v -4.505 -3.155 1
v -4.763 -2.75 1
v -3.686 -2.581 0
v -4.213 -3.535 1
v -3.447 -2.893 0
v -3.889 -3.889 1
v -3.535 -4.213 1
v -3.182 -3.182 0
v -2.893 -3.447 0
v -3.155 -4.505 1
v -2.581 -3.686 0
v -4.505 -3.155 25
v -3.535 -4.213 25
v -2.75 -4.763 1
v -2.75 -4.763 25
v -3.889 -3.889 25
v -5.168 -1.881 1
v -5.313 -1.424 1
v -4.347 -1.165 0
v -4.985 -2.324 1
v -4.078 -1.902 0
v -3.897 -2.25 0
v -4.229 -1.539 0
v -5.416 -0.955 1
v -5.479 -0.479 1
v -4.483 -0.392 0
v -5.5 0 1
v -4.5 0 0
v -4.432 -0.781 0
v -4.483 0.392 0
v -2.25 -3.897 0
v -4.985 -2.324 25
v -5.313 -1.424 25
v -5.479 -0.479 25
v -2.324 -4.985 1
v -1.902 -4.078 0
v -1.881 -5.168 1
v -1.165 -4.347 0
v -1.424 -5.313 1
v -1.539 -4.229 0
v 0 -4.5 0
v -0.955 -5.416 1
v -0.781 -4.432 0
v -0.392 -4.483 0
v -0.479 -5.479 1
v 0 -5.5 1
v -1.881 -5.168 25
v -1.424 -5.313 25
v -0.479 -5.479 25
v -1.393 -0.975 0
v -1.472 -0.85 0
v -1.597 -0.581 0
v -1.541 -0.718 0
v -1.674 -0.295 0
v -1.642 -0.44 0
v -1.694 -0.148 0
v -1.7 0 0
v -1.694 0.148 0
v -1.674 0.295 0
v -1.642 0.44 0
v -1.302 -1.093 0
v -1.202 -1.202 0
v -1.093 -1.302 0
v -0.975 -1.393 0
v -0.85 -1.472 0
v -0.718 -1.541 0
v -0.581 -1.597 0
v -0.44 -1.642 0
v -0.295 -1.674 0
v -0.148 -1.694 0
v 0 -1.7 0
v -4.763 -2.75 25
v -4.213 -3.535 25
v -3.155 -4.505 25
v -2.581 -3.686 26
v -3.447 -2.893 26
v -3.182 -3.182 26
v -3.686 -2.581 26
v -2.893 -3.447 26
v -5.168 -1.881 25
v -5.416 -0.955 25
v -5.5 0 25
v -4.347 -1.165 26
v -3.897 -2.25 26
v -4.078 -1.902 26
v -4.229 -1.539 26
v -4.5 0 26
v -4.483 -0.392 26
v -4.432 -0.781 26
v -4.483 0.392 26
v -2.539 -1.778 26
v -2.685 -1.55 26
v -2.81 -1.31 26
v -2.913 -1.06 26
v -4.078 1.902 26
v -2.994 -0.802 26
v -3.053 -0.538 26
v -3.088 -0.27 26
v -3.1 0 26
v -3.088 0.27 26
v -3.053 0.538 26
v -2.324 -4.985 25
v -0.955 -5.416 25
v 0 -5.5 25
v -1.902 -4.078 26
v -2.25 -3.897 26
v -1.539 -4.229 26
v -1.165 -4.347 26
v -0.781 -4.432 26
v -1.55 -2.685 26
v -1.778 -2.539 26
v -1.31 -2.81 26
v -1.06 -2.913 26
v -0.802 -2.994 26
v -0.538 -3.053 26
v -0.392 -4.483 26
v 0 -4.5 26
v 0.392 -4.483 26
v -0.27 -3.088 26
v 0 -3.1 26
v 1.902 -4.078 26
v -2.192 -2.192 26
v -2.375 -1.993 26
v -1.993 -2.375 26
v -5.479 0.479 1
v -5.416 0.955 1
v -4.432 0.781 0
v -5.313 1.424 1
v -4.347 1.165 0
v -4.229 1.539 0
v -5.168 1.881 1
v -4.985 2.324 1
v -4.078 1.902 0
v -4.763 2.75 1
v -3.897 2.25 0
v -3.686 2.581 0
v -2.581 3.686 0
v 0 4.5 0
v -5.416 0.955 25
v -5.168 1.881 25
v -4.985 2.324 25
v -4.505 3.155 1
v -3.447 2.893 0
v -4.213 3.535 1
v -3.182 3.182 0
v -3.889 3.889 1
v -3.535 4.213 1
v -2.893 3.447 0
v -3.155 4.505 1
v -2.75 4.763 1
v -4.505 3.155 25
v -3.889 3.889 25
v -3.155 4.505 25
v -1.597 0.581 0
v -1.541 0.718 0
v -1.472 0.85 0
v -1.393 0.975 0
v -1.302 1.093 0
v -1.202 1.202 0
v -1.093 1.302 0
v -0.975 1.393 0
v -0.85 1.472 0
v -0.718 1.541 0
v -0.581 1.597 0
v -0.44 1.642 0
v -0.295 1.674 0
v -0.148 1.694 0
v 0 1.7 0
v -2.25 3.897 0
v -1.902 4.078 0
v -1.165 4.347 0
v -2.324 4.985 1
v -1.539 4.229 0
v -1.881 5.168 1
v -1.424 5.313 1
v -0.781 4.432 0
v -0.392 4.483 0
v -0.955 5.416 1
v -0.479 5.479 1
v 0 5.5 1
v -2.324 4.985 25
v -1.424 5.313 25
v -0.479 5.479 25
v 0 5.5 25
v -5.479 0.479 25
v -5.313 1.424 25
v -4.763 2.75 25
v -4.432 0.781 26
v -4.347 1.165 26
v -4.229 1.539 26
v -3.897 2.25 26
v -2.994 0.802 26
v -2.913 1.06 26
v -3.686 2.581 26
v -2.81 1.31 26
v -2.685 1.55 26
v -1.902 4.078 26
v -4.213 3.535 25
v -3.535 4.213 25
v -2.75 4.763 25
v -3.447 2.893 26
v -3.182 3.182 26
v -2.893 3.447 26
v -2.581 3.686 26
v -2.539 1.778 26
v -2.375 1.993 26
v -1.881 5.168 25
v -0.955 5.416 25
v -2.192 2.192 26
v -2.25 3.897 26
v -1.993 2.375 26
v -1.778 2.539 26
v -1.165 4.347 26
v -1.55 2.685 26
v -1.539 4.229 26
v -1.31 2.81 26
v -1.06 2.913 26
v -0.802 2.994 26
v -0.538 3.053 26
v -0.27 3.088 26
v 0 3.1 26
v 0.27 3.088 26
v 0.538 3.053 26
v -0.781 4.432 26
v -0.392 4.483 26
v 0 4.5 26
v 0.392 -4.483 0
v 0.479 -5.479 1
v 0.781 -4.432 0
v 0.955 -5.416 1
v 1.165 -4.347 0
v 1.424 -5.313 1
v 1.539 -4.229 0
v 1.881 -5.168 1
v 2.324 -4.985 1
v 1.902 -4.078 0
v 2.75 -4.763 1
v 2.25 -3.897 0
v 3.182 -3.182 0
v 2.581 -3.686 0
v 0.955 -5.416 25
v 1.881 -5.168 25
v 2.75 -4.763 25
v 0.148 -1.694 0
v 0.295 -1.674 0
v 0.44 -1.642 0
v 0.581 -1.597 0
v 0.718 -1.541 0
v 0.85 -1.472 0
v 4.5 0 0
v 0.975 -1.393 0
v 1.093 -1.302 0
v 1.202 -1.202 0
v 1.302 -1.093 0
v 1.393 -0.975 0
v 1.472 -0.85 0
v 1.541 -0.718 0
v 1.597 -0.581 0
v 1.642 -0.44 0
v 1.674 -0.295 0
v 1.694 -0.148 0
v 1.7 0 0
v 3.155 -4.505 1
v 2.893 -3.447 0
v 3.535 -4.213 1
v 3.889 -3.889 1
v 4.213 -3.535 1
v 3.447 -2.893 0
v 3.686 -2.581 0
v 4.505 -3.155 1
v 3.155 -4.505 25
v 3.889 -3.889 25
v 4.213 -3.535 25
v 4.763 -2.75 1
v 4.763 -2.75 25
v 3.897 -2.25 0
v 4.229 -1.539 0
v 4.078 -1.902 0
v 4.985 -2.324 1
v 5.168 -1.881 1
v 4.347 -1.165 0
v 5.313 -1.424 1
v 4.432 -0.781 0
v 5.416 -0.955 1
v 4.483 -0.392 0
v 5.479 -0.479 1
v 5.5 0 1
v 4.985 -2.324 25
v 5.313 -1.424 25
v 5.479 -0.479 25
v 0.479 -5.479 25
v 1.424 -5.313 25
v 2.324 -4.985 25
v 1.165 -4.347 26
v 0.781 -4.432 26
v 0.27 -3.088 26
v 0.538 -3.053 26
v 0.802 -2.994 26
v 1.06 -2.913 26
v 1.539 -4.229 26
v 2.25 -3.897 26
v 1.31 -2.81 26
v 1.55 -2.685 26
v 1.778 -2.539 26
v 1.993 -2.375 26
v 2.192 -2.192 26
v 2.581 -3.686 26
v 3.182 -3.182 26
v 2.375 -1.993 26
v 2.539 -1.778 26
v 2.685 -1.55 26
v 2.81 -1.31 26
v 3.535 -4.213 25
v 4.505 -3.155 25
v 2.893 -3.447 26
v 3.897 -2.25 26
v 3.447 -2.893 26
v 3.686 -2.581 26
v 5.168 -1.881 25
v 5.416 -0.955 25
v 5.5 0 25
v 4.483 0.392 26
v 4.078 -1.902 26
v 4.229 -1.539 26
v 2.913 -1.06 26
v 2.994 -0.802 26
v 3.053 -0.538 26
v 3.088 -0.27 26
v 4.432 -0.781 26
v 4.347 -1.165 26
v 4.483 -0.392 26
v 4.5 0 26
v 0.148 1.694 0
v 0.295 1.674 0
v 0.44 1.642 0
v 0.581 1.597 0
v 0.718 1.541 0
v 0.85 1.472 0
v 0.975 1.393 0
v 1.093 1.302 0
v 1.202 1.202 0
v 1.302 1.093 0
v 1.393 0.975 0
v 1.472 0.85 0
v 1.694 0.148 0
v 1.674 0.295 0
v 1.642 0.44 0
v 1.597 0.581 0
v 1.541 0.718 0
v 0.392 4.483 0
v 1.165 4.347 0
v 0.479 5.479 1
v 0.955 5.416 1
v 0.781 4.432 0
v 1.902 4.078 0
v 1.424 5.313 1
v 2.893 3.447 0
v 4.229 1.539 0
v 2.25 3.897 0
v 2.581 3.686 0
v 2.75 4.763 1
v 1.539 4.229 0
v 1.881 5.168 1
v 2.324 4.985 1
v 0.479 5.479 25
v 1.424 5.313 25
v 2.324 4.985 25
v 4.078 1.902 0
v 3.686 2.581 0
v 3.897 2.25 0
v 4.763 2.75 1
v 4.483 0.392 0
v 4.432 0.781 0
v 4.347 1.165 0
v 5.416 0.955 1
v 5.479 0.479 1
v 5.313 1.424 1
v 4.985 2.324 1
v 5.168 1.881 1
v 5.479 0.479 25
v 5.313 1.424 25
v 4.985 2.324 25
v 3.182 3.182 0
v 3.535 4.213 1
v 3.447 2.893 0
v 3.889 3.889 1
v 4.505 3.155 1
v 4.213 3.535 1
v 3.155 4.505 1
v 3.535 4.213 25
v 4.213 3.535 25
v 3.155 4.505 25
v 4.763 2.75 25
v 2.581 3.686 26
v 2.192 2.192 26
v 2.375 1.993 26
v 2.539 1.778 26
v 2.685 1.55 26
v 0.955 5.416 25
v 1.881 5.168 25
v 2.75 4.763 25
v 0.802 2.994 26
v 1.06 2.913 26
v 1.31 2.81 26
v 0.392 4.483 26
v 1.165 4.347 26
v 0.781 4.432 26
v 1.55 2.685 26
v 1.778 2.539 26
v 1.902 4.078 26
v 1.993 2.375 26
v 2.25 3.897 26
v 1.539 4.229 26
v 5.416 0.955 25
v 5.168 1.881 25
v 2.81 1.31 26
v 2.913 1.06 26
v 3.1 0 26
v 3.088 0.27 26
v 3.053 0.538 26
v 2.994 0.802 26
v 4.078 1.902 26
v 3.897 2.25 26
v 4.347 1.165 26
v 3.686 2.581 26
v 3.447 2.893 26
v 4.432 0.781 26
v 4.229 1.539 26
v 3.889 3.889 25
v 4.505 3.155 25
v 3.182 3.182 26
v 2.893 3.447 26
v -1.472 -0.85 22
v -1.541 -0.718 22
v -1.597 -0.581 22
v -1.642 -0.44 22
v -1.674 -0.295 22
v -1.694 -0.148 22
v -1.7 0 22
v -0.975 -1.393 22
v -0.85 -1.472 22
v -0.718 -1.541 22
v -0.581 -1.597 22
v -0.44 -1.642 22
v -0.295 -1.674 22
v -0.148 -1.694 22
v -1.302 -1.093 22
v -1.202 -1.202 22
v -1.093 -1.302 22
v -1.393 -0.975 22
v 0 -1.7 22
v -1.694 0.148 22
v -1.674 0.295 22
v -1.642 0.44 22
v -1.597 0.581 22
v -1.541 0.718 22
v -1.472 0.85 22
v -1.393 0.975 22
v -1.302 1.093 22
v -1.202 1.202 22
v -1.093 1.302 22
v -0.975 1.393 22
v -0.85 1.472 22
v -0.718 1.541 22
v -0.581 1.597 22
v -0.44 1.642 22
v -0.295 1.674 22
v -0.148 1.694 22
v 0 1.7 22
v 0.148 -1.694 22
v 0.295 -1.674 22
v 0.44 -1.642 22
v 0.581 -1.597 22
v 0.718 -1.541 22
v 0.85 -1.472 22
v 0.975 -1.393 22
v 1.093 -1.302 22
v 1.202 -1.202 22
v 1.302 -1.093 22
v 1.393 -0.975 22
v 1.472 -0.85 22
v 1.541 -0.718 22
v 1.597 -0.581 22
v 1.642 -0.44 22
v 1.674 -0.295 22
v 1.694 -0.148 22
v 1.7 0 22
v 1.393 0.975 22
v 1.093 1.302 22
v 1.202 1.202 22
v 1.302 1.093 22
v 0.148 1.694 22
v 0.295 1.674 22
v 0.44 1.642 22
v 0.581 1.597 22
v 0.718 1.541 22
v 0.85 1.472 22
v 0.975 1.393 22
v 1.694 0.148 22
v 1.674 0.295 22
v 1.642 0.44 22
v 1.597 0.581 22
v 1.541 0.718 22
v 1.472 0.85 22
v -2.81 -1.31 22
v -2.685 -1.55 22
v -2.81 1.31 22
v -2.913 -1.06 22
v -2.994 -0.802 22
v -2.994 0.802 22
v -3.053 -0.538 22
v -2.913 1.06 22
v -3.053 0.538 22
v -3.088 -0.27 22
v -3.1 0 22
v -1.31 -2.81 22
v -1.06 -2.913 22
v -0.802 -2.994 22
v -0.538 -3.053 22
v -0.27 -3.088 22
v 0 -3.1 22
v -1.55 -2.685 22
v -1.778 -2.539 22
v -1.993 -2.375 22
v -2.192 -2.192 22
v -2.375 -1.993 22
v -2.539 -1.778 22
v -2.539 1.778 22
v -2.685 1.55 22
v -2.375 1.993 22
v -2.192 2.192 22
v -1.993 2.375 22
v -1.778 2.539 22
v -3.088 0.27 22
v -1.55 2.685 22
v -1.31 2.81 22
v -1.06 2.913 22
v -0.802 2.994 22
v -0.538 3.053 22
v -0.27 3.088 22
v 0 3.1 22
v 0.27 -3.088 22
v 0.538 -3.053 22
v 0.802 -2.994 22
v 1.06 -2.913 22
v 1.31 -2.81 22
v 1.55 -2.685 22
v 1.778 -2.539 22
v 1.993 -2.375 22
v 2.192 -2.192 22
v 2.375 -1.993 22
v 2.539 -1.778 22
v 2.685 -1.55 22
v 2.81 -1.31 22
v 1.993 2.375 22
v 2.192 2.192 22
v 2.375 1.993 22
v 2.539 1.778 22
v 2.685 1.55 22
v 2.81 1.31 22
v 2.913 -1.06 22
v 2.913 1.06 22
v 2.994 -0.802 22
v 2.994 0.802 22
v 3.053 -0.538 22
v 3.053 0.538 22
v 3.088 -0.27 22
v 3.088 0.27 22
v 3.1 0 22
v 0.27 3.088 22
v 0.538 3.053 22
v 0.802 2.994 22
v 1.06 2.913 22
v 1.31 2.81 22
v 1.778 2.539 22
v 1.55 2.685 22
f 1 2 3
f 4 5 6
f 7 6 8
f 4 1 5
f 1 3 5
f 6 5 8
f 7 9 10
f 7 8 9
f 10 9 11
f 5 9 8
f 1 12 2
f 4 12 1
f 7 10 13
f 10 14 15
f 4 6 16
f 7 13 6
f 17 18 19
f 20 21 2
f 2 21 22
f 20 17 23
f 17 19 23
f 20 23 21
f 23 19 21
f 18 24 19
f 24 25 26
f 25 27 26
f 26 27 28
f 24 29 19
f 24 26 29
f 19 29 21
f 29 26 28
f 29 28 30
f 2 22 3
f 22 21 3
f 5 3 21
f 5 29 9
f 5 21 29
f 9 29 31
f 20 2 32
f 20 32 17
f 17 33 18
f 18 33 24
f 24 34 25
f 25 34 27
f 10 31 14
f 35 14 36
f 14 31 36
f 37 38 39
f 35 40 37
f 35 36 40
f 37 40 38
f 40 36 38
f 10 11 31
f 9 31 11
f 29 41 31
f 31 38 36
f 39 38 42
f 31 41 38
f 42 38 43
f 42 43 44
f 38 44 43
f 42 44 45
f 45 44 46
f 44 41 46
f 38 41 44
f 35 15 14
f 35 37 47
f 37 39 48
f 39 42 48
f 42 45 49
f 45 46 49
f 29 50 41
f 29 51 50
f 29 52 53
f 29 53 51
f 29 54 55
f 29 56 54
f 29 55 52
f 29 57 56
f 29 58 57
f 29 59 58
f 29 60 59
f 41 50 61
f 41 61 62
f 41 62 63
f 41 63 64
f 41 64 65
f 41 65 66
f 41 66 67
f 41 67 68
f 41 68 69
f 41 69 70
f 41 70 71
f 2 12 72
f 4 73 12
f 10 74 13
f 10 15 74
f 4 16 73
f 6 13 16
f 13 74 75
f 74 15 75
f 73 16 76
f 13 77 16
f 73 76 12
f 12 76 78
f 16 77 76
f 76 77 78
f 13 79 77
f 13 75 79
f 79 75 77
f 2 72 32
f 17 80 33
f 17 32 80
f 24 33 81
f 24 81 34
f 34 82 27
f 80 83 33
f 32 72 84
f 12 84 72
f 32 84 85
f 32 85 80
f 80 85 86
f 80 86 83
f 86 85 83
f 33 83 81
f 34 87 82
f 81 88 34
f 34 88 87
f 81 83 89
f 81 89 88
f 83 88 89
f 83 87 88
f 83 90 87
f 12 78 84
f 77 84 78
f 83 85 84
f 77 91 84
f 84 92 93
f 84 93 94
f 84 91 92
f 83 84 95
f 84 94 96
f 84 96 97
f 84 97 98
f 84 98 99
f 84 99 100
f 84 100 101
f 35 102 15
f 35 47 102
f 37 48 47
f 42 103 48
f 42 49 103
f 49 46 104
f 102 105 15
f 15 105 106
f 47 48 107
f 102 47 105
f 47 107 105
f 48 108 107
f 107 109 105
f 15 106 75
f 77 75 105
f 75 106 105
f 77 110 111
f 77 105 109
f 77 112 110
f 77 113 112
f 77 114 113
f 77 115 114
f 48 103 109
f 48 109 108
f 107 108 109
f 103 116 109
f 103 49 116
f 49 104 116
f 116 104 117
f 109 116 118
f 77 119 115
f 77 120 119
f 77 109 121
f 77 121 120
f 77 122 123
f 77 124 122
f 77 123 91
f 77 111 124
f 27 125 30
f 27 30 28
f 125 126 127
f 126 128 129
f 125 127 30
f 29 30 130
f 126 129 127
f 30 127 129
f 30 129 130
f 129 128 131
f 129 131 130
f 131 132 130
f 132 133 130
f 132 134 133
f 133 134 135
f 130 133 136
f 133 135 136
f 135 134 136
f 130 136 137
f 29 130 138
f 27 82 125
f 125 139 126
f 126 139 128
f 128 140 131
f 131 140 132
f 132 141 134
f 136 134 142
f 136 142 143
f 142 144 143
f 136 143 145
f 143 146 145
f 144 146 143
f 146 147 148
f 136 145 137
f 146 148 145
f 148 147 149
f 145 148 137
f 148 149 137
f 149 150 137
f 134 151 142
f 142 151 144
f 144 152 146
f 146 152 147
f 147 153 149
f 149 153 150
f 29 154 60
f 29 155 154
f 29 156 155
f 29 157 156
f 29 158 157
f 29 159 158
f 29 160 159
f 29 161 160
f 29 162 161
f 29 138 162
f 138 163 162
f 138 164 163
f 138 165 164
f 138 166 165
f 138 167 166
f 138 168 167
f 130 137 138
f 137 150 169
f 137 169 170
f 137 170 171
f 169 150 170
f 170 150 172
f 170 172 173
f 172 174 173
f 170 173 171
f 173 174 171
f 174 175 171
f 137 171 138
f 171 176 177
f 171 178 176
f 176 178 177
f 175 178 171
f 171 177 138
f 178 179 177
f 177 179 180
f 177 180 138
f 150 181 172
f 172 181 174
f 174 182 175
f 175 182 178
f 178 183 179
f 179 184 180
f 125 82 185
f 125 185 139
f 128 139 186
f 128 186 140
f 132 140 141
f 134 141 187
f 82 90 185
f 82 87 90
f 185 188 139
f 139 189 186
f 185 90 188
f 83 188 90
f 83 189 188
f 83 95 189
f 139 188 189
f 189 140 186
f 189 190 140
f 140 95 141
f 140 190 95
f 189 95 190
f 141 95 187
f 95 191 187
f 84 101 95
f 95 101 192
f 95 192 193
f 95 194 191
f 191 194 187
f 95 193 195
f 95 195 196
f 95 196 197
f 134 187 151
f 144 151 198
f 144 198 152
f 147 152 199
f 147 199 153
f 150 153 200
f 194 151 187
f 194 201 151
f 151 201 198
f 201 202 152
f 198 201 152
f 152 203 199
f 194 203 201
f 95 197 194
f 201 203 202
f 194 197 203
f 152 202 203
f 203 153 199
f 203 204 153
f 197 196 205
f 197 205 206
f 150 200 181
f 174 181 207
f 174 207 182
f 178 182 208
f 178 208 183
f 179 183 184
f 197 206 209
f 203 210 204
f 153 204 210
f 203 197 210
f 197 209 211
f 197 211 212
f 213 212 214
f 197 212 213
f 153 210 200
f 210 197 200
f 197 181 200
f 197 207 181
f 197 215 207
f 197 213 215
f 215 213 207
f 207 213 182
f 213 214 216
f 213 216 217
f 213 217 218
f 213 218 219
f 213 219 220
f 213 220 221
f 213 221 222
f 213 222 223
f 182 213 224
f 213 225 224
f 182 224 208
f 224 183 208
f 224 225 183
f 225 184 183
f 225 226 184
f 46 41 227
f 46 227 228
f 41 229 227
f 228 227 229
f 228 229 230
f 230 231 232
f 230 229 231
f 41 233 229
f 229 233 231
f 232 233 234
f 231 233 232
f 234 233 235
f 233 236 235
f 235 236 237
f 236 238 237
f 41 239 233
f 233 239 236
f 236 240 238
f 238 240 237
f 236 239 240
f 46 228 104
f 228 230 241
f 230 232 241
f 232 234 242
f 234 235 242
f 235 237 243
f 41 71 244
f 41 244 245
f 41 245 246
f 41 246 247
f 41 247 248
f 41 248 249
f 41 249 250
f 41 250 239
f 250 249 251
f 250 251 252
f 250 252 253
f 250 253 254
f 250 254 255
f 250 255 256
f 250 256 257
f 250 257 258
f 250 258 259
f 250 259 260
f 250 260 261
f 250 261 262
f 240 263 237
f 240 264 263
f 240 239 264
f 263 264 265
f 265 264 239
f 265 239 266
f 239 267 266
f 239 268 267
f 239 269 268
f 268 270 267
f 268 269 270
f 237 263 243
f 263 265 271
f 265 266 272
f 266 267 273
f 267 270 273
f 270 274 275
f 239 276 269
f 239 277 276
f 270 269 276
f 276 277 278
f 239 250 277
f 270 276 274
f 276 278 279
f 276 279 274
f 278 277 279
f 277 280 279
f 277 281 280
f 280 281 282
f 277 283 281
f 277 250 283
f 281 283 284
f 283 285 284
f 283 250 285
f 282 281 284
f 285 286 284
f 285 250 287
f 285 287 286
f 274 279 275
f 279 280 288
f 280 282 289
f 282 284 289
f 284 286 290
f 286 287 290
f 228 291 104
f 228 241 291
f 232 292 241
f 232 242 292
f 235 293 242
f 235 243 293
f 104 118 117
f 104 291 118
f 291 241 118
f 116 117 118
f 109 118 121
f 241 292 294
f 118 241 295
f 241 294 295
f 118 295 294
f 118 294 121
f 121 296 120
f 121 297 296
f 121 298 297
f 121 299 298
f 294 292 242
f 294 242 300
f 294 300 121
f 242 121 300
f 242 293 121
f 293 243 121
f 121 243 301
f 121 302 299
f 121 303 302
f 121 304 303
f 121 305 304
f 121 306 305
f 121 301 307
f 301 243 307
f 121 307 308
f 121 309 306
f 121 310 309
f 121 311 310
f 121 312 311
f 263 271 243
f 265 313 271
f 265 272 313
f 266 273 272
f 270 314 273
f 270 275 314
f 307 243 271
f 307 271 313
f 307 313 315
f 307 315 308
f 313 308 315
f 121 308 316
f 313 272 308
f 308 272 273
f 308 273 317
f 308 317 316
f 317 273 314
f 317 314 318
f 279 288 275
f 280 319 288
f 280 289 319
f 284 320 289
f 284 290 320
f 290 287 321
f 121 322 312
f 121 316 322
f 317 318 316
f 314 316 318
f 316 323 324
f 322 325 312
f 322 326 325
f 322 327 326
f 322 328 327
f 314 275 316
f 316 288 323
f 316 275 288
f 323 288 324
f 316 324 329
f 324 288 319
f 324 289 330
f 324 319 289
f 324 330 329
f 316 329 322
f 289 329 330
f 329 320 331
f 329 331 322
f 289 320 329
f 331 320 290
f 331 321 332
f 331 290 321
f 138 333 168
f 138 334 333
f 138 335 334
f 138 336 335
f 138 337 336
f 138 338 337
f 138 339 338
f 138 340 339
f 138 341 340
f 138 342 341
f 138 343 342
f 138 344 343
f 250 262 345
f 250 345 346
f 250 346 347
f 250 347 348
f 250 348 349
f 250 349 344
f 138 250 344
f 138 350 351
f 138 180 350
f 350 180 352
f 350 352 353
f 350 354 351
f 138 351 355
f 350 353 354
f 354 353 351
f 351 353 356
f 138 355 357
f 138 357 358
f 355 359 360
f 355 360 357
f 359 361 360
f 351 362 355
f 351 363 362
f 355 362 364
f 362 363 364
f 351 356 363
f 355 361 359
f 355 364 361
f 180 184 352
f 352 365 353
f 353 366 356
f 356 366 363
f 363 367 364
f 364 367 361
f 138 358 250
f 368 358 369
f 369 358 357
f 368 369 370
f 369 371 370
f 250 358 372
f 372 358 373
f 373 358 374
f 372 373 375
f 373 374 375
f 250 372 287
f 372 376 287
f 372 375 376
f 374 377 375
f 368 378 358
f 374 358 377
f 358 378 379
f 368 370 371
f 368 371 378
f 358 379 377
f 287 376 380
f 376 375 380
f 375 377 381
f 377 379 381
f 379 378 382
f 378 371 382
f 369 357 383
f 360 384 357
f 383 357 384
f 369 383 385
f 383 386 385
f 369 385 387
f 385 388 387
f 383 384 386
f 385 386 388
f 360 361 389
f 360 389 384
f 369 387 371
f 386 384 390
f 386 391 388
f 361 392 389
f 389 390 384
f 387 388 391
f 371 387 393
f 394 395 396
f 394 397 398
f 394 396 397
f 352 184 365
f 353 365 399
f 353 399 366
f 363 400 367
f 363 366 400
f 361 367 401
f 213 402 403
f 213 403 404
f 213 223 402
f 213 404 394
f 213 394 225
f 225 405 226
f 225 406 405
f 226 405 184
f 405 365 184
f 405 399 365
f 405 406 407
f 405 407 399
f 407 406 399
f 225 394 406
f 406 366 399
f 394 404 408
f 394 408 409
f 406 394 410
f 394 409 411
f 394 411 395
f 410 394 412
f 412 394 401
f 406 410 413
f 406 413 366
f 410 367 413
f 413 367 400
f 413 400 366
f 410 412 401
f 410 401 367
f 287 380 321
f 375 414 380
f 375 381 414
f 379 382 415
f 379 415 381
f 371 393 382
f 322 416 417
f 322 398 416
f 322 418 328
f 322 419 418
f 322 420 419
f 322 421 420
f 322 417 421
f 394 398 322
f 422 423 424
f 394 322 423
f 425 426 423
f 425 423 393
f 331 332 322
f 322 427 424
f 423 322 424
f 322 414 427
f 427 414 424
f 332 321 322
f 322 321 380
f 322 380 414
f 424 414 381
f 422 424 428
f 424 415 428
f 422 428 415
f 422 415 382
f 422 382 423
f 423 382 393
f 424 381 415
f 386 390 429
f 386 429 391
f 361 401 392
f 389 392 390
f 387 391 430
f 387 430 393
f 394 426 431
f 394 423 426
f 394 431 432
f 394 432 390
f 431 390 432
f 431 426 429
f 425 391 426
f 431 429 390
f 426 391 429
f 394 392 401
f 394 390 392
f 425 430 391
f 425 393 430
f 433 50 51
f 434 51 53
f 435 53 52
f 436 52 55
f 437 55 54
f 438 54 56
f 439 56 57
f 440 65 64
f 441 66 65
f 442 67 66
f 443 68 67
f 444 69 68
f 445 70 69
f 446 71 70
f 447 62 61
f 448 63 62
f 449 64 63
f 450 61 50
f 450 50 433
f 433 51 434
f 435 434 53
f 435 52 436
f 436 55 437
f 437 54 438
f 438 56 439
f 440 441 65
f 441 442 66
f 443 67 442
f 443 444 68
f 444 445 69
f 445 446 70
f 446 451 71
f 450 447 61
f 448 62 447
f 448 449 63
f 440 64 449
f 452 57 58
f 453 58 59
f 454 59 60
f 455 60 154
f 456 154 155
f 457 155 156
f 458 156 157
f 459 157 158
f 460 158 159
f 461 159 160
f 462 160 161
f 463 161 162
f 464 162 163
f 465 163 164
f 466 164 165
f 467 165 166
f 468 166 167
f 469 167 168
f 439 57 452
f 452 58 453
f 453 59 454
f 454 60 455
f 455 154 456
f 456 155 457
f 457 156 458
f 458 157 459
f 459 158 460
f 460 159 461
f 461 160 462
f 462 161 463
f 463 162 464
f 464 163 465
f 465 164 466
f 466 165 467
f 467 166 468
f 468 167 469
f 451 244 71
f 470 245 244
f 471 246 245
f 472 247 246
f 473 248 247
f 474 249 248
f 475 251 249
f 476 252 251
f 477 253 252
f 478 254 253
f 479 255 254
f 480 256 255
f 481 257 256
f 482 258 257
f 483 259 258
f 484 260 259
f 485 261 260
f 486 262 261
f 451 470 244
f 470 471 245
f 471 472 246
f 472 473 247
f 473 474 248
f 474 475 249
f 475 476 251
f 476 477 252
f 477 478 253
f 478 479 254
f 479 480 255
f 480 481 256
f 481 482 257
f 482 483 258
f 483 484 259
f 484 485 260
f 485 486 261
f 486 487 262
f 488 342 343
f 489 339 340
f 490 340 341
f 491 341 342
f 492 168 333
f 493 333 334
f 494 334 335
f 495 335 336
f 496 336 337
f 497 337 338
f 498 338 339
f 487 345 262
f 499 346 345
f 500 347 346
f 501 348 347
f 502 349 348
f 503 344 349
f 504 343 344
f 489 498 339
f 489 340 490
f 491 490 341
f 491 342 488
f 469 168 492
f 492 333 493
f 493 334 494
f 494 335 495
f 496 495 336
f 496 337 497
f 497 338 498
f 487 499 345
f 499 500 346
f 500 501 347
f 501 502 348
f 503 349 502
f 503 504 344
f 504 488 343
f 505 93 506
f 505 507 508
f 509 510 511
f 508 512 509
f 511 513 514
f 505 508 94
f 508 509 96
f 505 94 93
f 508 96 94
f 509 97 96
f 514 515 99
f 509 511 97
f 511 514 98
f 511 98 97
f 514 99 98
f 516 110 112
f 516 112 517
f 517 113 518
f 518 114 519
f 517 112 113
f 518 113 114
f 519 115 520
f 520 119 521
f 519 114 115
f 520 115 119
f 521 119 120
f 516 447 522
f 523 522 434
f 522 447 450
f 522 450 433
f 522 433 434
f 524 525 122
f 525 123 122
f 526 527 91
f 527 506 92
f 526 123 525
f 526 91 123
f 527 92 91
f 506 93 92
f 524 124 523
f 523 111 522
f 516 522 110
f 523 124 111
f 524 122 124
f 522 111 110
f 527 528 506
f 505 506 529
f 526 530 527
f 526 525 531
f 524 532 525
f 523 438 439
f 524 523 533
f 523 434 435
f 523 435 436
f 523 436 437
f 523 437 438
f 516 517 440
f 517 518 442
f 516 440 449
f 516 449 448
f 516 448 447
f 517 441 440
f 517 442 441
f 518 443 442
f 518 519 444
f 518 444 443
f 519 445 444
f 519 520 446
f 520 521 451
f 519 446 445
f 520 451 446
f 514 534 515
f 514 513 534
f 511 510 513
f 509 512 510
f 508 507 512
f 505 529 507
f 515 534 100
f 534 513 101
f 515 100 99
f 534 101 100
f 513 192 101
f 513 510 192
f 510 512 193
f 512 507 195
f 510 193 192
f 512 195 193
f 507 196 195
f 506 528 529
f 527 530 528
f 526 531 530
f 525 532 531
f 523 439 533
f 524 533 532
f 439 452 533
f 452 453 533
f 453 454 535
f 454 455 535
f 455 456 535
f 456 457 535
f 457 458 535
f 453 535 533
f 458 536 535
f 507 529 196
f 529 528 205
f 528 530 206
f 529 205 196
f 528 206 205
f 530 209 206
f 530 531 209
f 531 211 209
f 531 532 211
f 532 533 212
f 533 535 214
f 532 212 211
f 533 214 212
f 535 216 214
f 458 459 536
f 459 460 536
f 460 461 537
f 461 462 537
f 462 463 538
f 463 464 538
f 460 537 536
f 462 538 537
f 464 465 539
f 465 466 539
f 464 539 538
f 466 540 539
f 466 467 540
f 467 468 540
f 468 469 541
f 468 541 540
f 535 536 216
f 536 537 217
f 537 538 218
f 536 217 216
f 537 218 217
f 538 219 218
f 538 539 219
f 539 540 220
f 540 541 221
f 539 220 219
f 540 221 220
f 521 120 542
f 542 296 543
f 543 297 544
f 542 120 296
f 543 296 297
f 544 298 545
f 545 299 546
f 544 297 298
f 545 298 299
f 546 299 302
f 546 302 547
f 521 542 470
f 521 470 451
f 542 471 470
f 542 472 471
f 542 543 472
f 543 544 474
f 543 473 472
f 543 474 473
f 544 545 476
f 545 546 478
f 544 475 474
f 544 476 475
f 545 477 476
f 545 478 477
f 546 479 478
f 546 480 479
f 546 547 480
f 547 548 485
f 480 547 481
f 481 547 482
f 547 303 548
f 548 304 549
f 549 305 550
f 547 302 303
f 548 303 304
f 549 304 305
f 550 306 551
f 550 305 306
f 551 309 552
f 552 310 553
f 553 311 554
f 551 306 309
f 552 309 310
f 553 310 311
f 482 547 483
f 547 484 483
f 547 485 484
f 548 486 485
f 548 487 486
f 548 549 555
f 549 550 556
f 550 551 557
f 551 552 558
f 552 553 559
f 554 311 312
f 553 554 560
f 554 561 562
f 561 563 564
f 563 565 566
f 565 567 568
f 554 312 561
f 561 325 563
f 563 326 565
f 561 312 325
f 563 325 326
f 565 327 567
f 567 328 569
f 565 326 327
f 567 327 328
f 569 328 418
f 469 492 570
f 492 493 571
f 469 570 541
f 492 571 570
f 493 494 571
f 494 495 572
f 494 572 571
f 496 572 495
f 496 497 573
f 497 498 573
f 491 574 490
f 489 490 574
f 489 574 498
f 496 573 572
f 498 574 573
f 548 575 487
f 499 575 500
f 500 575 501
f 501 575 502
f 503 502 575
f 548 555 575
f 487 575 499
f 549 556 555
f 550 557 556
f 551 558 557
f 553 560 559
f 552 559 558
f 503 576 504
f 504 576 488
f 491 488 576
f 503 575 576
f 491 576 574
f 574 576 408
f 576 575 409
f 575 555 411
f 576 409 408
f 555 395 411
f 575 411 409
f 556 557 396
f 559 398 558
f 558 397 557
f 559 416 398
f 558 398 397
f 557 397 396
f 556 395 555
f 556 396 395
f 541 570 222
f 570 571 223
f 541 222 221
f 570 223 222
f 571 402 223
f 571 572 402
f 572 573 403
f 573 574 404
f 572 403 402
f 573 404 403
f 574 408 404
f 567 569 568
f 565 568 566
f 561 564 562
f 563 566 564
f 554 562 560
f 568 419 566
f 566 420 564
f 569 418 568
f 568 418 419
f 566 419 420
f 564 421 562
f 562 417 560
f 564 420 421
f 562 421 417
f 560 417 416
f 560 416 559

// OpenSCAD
// ============================================================================
// CyberWing — Nano->Orin spacer column  (print 4, PLA)
// Fastens to the Nano deck's M3 insert with an M3 x 30 screw dropped through
// from the top (head recessed in the counterbore). 26 mm tall -> with the Nano
// deck's 8 mm insert boss it gives a ~34 mm gap, clearing the 29 mm Nano+heatsink.
// The Orin deck sits on the column tops.
// ============================================================================
$fn = 72;

H      = 26;     // column height
OD     = 11;     // outer diameter (sits on the Nano deck's 10 mm boss)
HOLE   = 3.4;    // M3 screw clearance through-hole
CB_D   = 6.2;    // counterbore for the M3 x 30 head (5.35 mm + clearance)
CB_H   = 4.0;    // counterbore depth (recesses the head flush)
CHAM   = 1.0;    // top/bottom edge chamfer

module column() {
  difference() {
    // body with chamfered top + bottom edges
    hull() {
      translate([0,0,CHAM])      cylinder(d=OD, h=H-2*CHAM);
      cylinder(d1=OD-2*CHAM, d2=OD, h=CHAM);
      translate([0,0,H-CHAM])    cylinder(d1=OD, d2=OD-2*CHAM, h=CHAM);
    }
    translate([0,0,-0.1]) cylinder(d=HOLE, h=H+0.2);          // screw through-hole
    translate([0,0,H-CB_H]) cylinder(d=CB_D, h=CB_H+0.1);     // top counterbore (M3x30 head)
  }
}

column();
